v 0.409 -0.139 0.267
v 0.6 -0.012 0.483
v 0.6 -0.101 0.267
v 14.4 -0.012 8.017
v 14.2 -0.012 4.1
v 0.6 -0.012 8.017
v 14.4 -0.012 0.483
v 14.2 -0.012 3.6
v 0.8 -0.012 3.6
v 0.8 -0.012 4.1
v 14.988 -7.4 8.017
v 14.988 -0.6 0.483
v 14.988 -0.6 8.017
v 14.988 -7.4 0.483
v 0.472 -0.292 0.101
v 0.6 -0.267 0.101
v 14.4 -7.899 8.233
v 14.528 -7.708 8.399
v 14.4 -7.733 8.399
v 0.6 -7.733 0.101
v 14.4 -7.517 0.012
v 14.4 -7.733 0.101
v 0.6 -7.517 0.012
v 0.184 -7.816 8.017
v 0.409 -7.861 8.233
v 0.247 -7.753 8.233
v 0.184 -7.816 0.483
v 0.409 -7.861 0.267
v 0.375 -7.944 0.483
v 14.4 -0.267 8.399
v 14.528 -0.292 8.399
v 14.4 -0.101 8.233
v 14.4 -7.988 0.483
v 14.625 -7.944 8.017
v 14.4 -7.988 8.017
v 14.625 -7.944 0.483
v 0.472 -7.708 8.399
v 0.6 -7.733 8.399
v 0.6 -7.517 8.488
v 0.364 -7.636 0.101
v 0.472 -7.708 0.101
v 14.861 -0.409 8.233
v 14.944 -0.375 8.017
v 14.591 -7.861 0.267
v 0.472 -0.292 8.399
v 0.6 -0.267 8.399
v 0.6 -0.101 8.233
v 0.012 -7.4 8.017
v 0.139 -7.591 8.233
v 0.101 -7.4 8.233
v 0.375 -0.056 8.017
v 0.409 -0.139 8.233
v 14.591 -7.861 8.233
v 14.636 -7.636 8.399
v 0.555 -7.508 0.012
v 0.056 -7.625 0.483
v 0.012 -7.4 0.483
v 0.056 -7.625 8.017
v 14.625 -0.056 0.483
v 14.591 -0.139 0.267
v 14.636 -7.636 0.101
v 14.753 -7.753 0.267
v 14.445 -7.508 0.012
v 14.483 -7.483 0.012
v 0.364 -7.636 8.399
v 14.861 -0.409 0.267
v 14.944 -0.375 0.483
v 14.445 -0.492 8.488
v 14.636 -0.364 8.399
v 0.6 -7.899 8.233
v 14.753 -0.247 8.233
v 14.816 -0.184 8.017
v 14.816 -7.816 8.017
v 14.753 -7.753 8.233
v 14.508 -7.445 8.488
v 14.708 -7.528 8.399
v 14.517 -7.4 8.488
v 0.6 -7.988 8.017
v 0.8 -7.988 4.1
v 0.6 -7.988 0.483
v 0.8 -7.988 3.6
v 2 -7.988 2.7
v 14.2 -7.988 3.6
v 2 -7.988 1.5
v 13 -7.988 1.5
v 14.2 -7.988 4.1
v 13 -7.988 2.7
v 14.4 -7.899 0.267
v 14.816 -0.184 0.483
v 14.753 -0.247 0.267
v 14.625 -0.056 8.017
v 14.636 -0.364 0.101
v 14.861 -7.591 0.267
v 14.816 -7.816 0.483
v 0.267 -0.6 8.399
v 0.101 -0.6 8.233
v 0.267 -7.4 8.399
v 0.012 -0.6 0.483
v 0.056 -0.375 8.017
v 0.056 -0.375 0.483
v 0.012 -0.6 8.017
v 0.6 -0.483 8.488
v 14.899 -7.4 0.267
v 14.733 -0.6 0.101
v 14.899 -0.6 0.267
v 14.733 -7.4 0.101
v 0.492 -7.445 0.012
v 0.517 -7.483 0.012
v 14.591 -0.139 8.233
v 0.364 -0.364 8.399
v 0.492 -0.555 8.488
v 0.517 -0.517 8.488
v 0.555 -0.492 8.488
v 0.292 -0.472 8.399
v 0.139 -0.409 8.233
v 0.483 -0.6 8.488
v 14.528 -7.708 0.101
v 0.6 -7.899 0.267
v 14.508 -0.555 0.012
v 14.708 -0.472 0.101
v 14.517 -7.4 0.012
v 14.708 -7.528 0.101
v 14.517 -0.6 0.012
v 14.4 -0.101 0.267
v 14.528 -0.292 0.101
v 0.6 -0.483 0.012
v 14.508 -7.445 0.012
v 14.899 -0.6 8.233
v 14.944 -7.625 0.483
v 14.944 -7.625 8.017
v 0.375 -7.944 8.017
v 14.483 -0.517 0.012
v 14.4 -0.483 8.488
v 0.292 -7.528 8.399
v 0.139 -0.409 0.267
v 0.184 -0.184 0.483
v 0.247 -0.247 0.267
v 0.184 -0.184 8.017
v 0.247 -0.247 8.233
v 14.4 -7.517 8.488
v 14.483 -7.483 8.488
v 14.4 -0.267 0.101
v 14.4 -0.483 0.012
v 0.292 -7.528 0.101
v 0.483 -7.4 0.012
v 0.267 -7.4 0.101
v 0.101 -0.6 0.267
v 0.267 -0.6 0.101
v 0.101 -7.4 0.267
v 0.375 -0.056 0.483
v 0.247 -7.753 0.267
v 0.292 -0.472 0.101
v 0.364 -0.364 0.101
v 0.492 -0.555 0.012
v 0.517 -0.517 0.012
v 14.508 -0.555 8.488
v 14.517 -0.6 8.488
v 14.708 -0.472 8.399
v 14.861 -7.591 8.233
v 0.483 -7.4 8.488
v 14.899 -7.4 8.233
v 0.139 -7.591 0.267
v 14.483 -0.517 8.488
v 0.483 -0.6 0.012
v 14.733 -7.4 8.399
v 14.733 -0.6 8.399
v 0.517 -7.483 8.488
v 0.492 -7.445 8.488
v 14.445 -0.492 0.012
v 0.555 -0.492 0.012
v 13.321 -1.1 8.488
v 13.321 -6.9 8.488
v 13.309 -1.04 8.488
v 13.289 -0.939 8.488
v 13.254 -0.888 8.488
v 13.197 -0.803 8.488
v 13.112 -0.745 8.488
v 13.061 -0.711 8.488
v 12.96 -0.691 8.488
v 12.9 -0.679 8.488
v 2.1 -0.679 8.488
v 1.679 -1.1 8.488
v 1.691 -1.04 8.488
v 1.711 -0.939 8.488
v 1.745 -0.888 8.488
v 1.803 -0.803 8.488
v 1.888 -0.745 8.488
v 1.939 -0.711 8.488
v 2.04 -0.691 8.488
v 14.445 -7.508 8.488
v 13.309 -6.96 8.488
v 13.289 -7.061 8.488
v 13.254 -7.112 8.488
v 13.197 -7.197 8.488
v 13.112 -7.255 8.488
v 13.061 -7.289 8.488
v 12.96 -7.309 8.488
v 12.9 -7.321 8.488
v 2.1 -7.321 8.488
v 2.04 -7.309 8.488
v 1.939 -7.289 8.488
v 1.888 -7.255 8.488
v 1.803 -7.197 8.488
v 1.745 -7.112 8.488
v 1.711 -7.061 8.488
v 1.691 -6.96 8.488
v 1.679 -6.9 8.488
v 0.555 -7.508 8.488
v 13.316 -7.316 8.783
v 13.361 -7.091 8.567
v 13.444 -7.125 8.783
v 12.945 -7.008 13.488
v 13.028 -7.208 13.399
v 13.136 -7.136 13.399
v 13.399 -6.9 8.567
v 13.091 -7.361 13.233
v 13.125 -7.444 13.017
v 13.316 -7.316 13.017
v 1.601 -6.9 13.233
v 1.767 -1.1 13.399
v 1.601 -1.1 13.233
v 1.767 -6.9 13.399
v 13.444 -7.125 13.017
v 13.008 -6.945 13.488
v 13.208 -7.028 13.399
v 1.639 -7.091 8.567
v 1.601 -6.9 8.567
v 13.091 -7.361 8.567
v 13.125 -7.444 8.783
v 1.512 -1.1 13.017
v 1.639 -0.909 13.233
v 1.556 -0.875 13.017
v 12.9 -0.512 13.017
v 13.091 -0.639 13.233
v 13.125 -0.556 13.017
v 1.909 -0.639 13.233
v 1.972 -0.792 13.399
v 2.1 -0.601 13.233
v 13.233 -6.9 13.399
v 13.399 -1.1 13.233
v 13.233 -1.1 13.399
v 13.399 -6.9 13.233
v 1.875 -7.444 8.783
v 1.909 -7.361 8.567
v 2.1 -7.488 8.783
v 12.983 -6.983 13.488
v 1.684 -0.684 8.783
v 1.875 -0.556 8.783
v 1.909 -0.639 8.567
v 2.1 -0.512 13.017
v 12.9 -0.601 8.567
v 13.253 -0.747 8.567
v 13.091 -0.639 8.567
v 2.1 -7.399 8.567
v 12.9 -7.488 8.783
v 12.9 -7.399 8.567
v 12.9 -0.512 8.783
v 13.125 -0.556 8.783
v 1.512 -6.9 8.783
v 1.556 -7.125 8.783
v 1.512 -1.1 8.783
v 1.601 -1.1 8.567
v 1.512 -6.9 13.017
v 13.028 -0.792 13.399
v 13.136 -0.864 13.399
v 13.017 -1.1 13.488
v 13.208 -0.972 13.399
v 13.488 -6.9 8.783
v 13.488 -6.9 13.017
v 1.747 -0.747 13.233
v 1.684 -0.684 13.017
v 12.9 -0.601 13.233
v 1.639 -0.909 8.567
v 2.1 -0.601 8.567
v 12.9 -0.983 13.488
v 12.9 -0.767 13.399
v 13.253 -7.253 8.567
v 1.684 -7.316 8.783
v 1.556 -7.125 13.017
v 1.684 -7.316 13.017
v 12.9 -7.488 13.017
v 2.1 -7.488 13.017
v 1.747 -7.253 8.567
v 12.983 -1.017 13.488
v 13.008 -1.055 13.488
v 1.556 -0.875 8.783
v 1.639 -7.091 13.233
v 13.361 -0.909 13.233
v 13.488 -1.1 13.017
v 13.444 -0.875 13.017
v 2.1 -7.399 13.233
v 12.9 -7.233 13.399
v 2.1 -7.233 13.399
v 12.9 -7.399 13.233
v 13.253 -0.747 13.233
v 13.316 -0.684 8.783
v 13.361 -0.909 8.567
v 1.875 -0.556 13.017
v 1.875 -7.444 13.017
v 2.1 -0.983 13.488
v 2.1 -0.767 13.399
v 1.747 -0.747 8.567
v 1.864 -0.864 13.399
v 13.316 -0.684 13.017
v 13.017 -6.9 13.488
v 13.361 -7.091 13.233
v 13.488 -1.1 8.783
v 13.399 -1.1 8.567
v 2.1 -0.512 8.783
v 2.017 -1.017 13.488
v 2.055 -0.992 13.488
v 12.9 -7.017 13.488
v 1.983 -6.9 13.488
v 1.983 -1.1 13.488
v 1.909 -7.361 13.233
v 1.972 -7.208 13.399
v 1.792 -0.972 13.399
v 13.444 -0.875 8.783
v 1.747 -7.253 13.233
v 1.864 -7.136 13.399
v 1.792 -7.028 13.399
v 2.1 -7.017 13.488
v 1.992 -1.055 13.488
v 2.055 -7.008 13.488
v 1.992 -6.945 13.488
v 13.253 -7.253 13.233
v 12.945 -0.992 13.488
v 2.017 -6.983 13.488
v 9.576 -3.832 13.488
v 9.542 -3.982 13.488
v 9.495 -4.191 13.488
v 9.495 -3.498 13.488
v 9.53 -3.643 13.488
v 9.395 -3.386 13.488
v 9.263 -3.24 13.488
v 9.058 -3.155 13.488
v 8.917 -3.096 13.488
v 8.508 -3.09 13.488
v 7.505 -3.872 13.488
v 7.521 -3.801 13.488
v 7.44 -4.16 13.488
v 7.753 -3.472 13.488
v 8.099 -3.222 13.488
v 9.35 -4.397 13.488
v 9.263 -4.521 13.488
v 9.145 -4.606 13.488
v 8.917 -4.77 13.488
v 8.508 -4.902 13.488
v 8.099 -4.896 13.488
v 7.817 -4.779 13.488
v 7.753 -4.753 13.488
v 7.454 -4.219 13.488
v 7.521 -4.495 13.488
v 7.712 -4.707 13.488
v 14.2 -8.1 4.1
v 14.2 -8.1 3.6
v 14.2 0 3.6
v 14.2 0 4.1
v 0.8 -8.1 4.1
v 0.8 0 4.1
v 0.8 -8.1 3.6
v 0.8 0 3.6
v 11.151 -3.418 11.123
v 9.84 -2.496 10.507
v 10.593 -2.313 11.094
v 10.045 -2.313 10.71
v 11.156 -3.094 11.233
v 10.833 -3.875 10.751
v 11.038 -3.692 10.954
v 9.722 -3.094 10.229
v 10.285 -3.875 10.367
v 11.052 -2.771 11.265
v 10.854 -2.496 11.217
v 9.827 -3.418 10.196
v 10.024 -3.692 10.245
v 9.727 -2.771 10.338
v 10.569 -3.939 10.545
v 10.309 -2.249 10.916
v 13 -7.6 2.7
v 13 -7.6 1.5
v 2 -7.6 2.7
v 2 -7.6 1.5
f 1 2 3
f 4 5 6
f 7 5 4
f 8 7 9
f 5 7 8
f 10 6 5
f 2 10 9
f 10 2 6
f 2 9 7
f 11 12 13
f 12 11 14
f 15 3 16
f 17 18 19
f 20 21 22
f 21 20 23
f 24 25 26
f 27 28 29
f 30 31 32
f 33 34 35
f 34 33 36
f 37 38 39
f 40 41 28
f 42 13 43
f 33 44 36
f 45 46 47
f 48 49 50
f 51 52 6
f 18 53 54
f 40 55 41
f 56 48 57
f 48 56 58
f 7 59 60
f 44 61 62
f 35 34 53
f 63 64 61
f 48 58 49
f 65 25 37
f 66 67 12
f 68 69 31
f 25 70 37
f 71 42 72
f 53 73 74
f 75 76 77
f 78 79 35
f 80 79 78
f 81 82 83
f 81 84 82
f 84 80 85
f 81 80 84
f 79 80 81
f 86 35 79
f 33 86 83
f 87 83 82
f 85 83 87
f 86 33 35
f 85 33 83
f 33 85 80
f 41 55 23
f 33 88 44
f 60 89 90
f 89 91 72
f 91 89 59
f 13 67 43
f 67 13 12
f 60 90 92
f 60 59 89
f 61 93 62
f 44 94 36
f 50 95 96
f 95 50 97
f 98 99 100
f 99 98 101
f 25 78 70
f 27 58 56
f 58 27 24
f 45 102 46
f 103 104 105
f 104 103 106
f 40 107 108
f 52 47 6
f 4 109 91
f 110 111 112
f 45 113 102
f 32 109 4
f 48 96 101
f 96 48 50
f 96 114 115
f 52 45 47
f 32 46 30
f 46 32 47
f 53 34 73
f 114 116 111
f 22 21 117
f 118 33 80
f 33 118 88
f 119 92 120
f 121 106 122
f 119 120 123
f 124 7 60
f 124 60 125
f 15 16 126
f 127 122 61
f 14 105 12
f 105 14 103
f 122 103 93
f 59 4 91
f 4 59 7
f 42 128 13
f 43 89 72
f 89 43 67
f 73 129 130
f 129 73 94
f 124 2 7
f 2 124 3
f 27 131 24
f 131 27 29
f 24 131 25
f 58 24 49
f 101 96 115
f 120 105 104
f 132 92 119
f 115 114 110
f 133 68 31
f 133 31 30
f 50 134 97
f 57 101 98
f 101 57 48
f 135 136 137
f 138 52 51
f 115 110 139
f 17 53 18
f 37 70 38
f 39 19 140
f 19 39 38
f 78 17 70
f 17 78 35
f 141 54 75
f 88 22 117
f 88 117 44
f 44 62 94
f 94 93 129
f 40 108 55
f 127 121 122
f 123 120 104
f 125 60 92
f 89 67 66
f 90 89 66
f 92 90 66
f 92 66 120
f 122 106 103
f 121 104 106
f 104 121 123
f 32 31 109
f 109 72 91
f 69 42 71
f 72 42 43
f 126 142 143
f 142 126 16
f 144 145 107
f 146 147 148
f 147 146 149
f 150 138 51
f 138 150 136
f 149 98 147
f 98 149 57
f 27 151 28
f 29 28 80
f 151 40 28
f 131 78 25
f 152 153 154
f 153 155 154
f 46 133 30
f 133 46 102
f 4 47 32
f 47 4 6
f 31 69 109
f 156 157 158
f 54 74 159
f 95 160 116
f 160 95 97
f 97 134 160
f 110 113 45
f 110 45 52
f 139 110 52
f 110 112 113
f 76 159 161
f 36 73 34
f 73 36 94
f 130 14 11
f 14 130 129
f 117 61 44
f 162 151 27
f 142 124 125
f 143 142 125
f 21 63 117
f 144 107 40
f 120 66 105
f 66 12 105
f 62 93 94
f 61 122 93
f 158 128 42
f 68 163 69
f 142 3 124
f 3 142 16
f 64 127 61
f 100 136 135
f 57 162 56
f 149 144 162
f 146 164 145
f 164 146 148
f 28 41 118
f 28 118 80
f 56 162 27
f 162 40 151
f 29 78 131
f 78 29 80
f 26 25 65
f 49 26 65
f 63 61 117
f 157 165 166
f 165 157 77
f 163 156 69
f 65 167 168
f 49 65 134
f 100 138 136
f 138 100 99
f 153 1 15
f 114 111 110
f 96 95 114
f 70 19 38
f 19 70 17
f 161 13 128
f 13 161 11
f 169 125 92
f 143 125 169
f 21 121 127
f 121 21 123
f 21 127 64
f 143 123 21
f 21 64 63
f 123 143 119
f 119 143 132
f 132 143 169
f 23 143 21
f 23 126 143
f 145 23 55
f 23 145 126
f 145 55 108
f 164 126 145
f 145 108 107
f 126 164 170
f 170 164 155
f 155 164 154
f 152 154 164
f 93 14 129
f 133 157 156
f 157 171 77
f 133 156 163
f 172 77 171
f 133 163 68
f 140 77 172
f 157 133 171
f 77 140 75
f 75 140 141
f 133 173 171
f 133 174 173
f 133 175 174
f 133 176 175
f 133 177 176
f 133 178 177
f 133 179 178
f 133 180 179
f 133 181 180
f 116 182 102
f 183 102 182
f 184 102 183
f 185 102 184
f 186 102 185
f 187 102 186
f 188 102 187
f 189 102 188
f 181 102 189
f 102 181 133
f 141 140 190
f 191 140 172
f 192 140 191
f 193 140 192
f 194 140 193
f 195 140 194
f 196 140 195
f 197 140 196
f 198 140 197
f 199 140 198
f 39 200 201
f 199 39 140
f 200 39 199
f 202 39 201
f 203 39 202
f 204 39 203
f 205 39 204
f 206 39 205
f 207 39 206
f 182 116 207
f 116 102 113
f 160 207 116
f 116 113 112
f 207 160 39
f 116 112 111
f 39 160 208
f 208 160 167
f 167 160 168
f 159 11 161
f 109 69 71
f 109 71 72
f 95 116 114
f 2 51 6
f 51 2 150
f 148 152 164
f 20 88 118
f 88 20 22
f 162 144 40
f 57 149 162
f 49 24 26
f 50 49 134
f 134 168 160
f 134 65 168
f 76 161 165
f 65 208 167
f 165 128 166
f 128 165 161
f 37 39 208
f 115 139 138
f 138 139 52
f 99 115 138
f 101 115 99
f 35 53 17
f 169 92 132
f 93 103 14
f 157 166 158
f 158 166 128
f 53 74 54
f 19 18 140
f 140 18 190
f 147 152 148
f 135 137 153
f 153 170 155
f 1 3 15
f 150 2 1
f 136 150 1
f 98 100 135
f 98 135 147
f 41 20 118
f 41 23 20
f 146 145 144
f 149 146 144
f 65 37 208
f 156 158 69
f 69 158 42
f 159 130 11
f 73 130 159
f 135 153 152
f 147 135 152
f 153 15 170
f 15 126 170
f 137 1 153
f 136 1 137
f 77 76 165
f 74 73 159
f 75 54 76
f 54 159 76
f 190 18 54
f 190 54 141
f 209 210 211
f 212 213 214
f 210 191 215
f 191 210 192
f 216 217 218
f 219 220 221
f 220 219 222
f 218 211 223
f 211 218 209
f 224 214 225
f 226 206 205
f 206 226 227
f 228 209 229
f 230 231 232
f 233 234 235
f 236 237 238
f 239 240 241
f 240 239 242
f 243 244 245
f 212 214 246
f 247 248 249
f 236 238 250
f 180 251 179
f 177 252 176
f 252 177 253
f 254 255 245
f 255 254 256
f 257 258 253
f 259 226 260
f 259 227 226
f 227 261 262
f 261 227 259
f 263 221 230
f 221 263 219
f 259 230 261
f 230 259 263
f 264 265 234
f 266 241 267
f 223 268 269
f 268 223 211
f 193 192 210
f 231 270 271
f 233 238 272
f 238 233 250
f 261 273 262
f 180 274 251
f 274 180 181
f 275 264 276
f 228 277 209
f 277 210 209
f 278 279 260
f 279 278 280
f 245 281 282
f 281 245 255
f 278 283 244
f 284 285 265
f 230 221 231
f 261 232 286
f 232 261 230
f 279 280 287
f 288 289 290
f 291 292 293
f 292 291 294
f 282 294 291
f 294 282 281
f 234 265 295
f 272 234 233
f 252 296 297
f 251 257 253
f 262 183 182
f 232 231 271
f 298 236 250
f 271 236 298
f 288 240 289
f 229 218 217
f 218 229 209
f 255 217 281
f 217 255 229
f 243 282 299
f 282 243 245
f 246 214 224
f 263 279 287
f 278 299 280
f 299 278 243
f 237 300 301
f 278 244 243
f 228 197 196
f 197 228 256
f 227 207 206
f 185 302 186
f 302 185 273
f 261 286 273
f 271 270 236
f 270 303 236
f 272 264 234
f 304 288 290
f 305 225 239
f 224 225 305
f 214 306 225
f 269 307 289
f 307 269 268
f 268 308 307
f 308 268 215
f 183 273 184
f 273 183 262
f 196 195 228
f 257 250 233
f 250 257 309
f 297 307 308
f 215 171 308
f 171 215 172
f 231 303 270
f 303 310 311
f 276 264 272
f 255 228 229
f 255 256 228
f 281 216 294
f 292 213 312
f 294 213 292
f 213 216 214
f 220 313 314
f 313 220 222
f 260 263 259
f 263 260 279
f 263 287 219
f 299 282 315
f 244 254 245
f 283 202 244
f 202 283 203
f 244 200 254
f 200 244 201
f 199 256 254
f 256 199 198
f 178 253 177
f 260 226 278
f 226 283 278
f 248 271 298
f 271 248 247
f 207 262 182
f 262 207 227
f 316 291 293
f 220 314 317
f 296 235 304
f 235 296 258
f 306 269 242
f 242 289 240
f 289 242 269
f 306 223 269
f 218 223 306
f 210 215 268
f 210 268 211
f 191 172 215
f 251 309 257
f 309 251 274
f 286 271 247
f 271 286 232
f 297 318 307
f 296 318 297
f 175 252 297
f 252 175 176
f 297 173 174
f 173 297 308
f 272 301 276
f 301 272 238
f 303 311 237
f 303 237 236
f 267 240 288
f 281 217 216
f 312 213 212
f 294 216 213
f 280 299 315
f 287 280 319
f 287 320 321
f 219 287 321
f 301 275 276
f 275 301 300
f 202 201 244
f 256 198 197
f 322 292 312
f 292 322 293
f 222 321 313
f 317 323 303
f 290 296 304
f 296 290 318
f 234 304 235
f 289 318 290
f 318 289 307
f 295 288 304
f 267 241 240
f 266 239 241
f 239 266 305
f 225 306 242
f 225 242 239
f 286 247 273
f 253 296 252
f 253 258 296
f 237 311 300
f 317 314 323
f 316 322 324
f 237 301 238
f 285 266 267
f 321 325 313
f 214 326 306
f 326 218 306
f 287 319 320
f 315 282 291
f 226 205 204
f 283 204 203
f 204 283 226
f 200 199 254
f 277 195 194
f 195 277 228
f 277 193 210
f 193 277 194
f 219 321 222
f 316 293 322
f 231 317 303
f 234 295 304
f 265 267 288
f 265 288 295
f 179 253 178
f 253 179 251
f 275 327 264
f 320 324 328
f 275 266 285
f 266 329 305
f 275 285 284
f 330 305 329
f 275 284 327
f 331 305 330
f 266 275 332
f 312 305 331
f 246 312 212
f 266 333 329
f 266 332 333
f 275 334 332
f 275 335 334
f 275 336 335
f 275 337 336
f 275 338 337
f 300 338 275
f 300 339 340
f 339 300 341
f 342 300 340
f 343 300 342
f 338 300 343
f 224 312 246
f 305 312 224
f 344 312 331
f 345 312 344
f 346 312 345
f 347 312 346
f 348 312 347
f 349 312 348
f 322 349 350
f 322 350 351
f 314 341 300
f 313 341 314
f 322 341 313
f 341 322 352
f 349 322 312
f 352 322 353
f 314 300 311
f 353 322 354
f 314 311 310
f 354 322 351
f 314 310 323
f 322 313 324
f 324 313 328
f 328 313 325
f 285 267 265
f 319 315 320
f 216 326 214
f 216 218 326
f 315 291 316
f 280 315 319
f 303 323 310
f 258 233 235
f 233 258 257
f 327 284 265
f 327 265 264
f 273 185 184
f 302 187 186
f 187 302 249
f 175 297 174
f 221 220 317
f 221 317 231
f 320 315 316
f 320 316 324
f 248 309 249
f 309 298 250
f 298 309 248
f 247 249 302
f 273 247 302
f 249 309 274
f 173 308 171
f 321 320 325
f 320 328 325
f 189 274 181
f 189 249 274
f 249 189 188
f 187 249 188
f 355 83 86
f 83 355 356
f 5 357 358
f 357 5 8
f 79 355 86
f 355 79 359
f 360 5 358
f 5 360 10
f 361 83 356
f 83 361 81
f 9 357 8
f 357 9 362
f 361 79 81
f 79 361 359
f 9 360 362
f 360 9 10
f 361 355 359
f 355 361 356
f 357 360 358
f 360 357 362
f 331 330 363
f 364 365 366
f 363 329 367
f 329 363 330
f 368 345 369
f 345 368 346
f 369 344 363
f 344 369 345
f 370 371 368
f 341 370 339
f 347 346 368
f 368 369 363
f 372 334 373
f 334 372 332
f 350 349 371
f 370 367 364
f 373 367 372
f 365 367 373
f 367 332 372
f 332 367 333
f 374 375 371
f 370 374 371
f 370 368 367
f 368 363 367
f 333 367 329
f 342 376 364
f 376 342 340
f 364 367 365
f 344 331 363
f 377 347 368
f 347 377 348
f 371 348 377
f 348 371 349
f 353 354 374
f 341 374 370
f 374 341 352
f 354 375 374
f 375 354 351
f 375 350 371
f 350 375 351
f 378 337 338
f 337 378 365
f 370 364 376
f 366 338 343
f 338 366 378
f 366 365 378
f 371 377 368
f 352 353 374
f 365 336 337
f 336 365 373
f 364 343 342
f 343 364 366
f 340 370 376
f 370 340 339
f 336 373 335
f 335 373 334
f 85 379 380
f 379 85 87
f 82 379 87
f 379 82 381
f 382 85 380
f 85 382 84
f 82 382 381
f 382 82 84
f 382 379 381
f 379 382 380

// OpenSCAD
// Gramophone_Base.stl  -  Store Versile room frame (Rev C)
// Quantity: 1   Filament: Dark brown (e.g. PLA Matte Dark Brown)
// Print: layer 0.12 mm, infill 20%, 2 walls, brim 0 mm, NO supports
// Orientation: flat  (as installed)
// Notes: Angled hole for the horn on top.
// The library draws parts with their front toward +Y; mirror([0,1,0]) makes the real
// part face the viewer correctly (see build.py). Edit dimensions in versile_parts.scad.
use <../versile_parts.scad>

mirror([0, 1, 0]) gramophone_base();
